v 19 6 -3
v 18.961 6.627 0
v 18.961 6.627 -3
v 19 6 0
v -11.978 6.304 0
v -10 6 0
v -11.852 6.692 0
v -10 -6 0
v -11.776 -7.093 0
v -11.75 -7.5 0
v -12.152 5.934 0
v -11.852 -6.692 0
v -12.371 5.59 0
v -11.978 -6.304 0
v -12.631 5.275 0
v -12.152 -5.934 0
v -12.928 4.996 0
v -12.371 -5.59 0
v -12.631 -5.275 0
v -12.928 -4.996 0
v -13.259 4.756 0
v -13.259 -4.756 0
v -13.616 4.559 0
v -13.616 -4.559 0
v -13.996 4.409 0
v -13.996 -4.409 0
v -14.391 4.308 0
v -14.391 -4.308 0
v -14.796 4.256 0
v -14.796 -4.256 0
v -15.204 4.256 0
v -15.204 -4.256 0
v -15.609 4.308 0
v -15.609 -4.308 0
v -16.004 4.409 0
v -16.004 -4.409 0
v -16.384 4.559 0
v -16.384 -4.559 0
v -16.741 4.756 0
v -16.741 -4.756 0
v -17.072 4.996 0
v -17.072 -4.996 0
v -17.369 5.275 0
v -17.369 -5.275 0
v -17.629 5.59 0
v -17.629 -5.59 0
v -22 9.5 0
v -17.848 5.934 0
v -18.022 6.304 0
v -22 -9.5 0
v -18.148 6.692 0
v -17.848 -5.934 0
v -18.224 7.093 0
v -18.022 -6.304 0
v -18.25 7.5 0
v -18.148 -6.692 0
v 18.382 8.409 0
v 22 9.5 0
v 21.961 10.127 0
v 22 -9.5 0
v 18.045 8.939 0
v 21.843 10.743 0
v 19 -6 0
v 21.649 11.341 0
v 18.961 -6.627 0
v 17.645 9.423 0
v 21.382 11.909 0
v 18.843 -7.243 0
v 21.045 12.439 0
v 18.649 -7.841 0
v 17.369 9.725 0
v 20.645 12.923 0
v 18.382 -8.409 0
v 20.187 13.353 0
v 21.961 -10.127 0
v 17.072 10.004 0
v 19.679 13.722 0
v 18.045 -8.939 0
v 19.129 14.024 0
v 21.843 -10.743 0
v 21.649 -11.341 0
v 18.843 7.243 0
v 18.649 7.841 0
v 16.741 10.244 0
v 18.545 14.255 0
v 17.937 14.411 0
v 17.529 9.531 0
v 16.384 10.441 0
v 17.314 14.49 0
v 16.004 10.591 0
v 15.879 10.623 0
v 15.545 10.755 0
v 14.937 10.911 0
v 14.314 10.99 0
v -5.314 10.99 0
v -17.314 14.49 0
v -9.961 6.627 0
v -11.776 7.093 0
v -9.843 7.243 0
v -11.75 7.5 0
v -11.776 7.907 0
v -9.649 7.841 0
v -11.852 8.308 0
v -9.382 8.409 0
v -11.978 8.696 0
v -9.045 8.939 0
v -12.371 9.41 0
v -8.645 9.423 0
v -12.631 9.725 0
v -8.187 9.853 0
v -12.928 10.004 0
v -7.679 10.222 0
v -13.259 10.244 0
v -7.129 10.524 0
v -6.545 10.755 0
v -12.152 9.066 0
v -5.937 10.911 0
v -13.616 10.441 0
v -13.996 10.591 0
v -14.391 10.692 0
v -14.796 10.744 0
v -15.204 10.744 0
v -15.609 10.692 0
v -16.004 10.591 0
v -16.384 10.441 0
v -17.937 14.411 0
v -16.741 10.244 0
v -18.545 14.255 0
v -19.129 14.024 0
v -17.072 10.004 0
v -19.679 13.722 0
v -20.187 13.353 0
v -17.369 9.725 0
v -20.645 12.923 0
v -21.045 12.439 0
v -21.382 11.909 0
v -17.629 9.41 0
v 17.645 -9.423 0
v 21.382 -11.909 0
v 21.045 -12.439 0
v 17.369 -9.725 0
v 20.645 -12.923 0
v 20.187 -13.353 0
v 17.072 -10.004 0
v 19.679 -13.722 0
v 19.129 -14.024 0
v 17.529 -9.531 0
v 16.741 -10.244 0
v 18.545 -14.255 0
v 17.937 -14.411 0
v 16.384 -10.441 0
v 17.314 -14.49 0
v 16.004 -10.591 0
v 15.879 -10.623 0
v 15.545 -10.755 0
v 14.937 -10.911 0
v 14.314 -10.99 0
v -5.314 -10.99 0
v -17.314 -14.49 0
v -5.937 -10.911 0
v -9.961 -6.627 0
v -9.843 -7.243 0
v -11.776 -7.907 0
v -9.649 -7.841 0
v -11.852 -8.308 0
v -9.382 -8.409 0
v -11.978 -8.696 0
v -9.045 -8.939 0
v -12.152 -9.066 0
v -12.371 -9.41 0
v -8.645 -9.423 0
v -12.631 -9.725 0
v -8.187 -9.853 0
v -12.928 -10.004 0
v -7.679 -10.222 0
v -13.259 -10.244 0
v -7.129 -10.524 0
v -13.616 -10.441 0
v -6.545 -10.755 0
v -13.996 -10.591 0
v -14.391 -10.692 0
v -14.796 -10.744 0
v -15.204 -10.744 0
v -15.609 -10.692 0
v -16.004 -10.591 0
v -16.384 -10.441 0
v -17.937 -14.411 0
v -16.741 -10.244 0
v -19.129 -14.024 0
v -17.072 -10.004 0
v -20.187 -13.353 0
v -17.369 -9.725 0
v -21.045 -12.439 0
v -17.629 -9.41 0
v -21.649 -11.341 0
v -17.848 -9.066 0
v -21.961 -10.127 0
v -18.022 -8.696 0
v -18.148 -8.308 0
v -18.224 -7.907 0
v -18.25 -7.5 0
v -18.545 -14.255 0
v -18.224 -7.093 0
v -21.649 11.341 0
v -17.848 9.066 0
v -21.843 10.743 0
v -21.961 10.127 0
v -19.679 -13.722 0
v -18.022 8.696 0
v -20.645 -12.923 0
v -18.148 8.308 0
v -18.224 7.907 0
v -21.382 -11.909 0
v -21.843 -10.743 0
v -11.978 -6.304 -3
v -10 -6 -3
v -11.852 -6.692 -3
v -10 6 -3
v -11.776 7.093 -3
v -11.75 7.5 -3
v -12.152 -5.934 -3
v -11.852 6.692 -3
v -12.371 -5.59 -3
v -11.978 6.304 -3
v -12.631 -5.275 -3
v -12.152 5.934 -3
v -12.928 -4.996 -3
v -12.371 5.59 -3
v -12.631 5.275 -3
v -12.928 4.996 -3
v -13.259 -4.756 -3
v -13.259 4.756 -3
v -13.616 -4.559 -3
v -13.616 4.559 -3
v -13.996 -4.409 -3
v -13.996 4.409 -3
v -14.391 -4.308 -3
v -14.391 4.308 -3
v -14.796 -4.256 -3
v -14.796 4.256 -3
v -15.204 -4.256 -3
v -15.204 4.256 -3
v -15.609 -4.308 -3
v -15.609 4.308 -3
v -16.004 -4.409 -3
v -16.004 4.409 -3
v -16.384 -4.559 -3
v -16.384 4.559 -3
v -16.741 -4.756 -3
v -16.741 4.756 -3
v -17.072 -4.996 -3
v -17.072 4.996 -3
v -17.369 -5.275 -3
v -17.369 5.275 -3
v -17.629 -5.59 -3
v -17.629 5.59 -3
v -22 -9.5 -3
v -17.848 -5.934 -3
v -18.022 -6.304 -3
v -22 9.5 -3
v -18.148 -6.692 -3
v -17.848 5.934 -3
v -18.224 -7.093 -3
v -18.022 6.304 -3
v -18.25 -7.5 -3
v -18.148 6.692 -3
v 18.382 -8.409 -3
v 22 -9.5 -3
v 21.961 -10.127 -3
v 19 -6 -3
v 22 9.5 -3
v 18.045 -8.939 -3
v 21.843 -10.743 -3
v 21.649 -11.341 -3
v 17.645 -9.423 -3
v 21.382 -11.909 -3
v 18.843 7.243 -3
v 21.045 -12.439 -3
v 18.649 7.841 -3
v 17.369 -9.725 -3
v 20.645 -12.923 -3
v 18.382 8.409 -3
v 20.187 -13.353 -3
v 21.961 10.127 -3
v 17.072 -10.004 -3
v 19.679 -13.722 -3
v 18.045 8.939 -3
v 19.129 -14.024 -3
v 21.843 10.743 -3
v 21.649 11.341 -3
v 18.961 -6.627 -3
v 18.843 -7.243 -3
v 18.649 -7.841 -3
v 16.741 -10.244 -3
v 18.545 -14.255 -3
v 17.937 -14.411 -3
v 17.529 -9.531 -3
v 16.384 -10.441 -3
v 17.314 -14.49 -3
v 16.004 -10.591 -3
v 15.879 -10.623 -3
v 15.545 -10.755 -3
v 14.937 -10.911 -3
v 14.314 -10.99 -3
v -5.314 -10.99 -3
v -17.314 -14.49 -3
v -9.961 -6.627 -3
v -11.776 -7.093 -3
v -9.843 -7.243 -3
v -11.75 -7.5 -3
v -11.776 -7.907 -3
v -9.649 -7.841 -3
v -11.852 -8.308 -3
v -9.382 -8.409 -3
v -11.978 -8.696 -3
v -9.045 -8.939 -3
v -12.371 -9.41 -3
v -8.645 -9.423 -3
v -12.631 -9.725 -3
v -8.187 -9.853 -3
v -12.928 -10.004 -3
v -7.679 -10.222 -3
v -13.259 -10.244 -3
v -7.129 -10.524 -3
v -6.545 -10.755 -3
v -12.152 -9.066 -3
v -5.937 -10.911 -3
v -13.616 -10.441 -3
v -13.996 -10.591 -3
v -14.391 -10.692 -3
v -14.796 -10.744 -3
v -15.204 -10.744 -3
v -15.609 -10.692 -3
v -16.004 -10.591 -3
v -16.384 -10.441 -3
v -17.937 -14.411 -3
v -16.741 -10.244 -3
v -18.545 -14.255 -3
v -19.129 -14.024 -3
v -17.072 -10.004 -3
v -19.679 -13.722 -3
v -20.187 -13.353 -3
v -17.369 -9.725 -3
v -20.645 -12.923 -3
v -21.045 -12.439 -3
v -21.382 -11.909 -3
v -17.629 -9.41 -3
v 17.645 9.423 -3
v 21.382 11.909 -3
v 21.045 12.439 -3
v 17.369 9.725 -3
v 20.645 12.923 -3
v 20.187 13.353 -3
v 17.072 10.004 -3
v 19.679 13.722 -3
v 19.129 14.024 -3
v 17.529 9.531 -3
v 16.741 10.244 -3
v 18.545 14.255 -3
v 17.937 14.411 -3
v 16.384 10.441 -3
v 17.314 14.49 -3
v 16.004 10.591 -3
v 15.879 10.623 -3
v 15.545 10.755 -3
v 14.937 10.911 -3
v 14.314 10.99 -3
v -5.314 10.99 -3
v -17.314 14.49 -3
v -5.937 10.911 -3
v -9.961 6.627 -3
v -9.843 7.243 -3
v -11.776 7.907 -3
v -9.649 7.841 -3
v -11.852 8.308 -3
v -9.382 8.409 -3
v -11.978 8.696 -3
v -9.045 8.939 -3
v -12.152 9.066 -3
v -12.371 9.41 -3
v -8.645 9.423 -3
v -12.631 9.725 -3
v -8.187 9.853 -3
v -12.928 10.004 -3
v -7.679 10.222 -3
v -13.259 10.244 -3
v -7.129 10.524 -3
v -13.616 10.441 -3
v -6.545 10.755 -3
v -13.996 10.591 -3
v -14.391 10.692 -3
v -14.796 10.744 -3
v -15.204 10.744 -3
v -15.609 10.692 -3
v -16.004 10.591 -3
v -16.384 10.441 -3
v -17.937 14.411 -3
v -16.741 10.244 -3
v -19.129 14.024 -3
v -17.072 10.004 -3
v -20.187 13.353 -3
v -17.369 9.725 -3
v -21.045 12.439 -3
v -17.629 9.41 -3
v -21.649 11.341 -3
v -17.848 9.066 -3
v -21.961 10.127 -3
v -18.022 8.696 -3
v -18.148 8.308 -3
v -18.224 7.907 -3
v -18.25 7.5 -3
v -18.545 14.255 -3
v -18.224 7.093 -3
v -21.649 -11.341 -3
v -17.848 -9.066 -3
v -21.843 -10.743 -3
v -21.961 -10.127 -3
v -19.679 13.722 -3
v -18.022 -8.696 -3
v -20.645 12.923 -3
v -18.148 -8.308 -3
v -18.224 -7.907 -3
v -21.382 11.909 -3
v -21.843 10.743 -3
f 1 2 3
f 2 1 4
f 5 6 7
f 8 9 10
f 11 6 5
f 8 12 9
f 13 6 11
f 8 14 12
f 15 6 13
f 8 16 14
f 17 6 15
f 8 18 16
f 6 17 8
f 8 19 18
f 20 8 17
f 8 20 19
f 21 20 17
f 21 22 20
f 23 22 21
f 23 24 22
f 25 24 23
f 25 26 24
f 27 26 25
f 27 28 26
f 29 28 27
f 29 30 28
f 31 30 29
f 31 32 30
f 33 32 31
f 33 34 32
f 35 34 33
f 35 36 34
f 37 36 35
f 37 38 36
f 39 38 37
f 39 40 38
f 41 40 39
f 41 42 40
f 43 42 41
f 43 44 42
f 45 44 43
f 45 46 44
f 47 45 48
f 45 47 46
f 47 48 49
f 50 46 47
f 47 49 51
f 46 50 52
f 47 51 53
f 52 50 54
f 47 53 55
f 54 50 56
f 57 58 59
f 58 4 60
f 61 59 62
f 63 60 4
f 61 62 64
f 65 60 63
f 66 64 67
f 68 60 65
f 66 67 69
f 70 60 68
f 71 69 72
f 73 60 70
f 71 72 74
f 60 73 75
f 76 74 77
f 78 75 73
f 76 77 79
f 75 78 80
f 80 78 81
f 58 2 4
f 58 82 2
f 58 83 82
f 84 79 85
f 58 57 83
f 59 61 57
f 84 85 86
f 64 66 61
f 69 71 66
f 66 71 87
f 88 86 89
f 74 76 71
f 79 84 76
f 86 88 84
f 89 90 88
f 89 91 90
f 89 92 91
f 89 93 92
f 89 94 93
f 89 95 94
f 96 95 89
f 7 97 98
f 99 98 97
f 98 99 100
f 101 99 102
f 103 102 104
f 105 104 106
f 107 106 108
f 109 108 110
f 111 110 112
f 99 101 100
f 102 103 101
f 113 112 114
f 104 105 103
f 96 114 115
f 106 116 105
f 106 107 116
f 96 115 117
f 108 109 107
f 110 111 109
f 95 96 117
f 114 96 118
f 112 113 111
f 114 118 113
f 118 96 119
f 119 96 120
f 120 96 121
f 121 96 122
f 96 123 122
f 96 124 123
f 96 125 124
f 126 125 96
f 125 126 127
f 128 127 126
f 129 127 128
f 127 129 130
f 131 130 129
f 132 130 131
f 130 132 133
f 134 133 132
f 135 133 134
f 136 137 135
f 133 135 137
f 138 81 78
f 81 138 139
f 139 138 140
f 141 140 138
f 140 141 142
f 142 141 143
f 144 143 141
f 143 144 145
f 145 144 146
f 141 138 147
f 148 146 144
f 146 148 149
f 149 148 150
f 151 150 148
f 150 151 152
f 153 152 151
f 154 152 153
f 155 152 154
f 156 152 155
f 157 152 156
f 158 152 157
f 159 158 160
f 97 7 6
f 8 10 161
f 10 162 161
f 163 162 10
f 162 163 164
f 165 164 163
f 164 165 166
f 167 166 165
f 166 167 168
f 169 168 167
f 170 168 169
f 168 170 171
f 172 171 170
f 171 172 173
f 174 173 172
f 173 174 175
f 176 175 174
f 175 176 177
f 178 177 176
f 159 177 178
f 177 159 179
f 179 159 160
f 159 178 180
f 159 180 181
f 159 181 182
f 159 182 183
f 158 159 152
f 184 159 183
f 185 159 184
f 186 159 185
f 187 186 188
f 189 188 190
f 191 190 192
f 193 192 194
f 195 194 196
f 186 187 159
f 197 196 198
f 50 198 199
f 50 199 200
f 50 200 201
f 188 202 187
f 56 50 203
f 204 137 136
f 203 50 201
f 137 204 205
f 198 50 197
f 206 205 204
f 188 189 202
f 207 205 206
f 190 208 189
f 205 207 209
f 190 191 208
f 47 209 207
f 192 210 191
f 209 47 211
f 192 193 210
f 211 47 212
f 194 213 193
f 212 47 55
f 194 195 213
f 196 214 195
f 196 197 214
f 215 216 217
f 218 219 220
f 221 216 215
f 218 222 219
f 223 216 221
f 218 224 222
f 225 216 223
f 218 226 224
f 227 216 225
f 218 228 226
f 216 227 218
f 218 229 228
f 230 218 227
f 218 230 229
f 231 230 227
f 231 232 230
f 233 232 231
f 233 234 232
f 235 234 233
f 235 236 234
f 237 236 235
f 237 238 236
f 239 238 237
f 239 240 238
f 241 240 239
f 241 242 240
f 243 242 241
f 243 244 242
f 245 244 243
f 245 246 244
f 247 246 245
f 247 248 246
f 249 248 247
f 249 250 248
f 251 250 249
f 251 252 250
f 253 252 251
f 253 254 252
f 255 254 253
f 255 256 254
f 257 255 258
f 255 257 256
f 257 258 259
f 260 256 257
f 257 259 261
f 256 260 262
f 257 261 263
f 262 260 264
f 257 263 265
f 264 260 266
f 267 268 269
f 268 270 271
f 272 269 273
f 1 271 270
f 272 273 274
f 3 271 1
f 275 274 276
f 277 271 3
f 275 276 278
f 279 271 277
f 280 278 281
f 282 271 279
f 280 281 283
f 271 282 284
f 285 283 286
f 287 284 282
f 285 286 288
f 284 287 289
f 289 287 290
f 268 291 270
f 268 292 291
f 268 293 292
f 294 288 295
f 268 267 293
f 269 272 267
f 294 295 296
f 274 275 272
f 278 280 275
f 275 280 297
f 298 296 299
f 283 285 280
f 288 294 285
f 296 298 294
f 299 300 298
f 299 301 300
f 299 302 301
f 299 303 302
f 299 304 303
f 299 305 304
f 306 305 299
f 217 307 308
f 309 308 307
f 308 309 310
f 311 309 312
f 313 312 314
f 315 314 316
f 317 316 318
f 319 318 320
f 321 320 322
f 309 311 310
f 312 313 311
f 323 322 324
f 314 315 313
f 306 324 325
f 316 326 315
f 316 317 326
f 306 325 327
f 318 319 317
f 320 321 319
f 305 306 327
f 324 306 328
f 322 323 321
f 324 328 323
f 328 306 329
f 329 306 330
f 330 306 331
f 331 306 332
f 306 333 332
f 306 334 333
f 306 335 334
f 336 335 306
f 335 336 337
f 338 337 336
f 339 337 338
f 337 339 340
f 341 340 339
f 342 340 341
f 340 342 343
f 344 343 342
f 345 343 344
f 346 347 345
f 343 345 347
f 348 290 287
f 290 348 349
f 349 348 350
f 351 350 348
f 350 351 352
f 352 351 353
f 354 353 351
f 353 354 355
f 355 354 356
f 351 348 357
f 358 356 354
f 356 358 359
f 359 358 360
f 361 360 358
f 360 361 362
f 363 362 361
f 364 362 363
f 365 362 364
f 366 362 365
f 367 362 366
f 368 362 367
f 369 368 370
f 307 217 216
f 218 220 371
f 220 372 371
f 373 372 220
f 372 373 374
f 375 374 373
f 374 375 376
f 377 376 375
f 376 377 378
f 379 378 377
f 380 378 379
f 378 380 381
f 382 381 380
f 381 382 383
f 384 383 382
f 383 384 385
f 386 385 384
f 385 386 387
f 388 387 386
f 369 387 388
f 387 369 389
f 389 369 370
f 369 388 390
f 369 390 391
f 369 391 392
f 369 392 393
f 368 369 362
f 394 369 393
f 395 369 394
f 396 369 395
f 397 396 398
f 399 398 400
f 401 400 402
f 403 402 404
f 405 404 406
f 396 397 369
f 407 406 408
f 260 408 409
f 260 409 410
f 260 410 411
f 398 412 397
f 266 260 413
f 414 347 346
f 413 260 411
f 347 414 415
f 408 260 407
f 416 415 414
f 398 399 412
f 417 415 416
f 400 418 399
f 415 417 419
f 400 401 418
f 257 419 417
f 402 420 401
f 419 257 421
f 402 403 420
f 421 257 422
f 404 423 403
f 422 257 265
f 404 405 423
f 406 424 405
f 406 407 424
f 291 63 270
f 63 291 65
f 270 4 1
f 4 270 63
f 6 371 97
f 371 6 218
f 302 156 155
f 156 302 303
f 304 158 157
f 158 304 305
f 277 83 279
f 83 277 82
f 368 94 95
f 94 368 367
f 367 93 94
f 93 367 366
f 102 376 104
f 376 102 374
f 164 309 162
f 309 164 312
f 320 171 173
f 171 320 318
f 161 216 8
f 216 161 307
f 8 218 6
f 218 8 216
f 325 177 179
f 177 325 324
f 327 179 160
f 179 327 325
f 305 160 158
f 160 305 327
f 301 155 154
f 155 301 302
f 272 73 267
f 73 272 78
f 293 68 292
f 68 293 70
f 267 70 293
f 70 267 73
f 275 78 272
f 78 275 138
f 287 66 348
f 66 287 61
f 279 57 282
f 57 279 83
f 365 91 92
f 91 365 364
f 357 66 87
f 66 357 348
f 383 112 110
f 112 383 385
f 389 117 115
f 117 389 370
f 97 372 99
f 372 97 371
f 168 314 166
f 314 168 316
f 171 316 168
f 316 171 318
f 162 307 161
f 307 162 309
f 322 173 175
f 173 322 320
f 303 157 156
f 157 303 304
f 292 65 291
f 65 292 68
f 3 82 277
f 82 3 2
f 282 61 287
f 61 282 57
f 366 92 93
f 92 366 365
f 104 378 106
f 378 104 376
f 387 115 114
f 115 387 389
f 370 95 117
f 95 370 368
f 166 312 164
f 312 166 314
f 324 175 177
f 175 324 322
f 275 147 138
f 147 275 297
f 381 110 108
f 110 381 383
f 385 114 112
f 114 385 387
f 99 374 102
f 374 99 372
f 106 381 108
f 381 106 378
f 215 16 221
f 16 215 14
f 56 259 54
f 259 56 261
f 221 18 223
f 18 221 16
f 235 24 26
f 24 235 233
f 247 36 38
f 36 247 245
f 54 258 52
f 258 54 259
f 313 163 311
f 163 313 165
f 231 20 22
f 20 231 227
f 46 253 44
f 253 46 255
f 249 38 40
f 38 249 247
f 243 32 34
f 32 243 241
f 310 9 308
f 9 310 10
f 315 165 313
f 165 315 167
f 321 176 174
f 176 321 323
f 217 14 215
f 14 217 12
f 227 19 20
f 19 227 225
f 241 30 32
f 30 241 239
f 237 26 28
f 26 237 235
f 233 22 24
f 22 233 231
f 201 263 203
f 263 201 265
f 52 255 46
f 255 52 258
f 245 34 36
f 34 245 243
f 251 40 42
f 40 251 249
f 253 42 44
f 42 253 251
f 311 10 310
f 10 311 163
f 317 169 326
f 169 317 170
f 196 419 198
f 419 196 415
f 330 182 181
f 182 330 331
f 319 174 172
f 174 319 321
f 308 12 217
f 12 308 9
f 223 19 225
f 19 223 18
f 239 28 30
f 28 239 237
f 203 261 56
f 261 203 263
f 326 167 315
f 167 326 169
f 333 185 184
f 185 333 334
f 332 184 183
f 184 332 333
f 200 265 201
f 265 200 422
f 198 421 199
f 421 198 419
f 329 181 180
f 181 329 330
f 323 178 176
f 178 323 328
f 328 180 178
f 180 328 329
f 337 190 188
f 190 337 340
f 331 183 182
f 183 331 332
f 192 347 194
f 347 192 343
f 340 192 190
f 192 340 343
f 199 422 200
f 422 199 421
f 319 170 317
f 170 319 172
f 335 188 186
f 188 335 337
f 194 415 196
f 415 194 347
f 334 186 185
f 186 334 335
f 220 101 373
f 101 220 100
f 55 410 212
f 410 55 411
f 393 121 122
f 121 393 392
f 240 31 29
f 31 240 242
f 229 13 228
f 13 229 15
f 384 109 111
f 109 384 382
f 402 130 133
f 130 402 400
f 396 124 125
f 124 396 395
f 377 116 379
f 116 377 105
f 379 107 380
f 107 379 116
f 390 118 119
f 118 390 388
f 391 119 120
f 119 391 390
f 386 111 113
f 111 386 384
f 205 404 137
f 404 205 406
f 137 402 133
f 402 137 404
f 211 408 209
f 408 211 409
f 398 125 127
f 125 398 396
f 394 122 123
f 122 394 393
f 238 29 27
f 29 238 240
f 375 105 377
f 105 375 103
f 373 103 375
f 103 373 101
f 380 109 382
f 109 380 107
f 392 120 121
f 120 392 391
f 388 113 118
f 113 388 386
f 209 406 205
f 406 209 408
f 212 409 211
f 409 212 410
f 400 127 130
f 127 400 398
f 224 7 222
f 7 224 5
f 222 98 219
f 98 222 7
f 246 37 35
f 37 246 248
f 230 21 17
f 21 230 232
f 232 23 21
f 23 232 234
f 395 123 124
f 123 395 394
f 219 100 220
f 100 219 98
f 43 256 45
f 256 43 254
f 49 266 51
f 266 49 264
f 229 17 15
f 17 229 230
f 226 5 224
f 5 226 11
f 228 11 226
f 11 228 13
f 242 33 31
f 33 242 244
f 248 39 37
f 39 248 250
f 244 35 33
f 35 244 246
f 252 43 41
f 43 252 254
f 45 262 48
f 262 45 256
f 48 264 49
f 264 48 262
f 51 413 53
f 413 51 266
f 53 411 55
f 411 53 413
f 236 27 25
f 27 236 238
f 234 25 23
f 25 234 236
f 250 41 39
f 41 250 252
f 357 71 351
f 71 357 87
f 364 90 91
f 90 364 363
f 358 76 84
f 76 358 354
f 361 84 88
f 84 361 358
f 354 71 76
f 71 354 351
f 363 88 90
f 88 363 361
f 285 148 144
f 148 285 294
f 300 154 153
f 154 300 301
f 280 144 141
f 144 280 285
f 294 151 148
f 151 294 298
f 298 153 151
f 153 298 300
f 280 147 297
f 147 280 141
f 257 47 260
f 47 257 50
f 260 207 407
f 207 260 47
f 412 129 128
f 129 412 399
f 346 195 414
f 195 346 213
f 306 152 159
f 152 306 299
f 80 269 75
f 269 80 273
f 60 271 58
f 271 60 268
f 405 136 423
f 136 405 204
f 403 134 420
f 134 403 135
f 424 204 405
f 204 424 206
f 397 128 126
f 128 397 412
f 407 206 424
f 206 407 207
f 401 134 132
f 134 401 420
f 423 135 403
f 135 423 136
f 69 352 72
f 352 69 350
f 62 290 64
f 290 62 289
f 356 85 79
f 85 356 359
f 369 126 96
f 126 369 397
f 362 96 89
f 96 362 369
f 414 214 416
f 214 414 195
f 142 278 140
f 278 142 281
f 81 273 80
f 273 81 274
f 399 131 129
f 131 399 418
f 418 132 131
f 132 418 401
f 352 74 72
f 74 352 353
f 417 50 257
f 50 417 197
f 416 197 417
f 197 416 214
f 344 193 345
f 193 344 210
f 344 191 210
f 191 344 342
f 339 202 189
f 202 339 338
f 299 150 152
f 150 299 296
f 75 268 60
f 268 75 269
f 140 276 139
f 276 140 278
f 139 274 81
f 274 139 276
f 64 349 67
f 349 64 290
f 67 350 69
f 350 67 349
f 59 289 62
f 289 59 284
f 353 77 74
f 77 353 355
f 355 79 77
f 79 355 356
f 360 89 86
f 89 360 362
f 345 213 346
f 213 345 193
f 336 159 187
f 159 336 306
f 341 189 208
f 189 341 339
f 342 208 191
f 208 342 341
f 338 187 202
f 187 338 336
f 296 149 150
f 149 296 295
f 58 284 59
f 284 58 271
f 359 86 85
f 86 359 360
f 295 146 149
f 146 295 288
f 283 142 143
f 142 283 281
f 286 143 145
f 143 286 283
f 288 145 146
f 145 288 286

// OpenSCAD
$fn = 50;


difference() {
	union() {
		*color(alpha = 1.0000000000, c = "gray") {
			translate(v = [0, 14, -3]) {
				linear_extrude(height = 2) {
					text(font = "Arial:style=Bold", halign = "center", size = 4.5000000000, text = "COMMENT description oobb_plate_shape_positive_type_3_depth_0_0_-3_pos_spacer_long_extra_3_thickness_3_width_2_height_0_0_-3_pos_plate", valign = "center");
				}
			}
		}
		translate(v = [0, 0, -3]) {
			hull() {
				translate(v = [-17.0000000000, 9.5000000000, 0]) {
					cylinder(h = 3, r = 5);
				}
				translate(v = [17.0000000000, 9.5000000000, 0]) {
					cylinder(h = 3, r = 5);
				}
				translate(v = [-17.0000000000, -9.5000000000, 0]) {
					cylinder(h = 3, r = 5);
				}
				translate(v = [17.0000000000, -9.5000000000, 0]) {
					cylinder(h = 3, r = 5);
				}
			}
		}
		*color(alpha = 1.0000000000, c = "gray") {
			translate(v = [0, 14, -3]) {
				linear_extrude(height = 2) {
					text(font = "Arial:style=Bold", halign = "center", size = 4.5000000000, text = "COMMENT description oobb_holes_shape_p_type_0_0_-3_pos_spacer_long_extra_3_thickness_3_width_2_height_0_0_-3_pos_plate_'left'_'right'_'top'_hole_sides_'left'_'right'_'top'_holes_true_both_holes", valign = "center");
				}
			}
		}
		*color(alpha = 1.0000000000, c = "gray") {
			translate(v = [0, 14, -3]) {
				rotate(a = [0, 0, 180]) {
					linear_extrude(height = 2) {
						text(font = "Arial:style=Bold", halign = "center", size = 4.5000000000, text = "COMMENT description oobb_wire_spacer_long_shape_0_0_-3_pos_spacer_long_extra_3_thickness_3_width_2_height_0_0_-3_pos_plate_0_0_180_rot", valign = "center");
					}
				}
			}
		}
	}
	union() {
		translate(v = [0, 0, -3]) {
			rotate(a = [0, 0, 180]) {
				difference() {
					union() {
						translate(v = [-4.5000000000, 0, 0]) {
							hull() {
								translate(v = [-9.5000000000, 6.0000000000, 0]) {
									cylinder(h = 3, r = 5);
								}
								translate(v = [9.5000000000, 6.0000000000, 0]) {
									cylinder(h = 3, r = 5);
								}
								translate(v = [-9.5000000000, -6.0000000000, 0]) {
									cylinder(h = 3, r = 5);
								}
								translate(v = [9.5000000000, -6.0000000000, 0]) {
									cylinder(h = 3, r = 5);
								}
							}
						}
					}
					union();
				}
			}
		}
		translate(v = [-15.0000000000, -7.5000000000, -50.0000000000]) {
			cylinder(h = 100, r = 3.2500000000);
		}
		translate(v = [-15.0000000000, 7.5000000000, -50.0000000000]) {
			cylinder(h = 100, r = 3.2500000000);
		}
		translate(v = [-15.0000000000, 7.5000000000, -50.0000000000]) {
			cylinder(h = 100, r = 3.2500000000);
		}
		translate(v = [0.0000000000, 7.5000000000, -50.0000000000]) {
			cylinder(h = 100, r = 3.2500000000);
		}
		translate(v = [15.0000000000, 7.5000000000, -50.0000000000]) {
			cylinder(h = 100, r = 3.2500000000);
		}
		translate(v = [-15.0000000000, -7.5000000000, -50.0000000000]) {
			cylinder(h = 100, r = 3.2500000000);
		}
		translate(v = [0.0000000000, -7.5000000000, -50.0000000000]) {
			cylinder(h = 100, r = 3.2500000000);
		}
		translate(v = [15.0000000000, -7.5000000000, -50.0000000000]) {
			cylinder(h = 100, r = 3.2500000000);
		}
	}
}
